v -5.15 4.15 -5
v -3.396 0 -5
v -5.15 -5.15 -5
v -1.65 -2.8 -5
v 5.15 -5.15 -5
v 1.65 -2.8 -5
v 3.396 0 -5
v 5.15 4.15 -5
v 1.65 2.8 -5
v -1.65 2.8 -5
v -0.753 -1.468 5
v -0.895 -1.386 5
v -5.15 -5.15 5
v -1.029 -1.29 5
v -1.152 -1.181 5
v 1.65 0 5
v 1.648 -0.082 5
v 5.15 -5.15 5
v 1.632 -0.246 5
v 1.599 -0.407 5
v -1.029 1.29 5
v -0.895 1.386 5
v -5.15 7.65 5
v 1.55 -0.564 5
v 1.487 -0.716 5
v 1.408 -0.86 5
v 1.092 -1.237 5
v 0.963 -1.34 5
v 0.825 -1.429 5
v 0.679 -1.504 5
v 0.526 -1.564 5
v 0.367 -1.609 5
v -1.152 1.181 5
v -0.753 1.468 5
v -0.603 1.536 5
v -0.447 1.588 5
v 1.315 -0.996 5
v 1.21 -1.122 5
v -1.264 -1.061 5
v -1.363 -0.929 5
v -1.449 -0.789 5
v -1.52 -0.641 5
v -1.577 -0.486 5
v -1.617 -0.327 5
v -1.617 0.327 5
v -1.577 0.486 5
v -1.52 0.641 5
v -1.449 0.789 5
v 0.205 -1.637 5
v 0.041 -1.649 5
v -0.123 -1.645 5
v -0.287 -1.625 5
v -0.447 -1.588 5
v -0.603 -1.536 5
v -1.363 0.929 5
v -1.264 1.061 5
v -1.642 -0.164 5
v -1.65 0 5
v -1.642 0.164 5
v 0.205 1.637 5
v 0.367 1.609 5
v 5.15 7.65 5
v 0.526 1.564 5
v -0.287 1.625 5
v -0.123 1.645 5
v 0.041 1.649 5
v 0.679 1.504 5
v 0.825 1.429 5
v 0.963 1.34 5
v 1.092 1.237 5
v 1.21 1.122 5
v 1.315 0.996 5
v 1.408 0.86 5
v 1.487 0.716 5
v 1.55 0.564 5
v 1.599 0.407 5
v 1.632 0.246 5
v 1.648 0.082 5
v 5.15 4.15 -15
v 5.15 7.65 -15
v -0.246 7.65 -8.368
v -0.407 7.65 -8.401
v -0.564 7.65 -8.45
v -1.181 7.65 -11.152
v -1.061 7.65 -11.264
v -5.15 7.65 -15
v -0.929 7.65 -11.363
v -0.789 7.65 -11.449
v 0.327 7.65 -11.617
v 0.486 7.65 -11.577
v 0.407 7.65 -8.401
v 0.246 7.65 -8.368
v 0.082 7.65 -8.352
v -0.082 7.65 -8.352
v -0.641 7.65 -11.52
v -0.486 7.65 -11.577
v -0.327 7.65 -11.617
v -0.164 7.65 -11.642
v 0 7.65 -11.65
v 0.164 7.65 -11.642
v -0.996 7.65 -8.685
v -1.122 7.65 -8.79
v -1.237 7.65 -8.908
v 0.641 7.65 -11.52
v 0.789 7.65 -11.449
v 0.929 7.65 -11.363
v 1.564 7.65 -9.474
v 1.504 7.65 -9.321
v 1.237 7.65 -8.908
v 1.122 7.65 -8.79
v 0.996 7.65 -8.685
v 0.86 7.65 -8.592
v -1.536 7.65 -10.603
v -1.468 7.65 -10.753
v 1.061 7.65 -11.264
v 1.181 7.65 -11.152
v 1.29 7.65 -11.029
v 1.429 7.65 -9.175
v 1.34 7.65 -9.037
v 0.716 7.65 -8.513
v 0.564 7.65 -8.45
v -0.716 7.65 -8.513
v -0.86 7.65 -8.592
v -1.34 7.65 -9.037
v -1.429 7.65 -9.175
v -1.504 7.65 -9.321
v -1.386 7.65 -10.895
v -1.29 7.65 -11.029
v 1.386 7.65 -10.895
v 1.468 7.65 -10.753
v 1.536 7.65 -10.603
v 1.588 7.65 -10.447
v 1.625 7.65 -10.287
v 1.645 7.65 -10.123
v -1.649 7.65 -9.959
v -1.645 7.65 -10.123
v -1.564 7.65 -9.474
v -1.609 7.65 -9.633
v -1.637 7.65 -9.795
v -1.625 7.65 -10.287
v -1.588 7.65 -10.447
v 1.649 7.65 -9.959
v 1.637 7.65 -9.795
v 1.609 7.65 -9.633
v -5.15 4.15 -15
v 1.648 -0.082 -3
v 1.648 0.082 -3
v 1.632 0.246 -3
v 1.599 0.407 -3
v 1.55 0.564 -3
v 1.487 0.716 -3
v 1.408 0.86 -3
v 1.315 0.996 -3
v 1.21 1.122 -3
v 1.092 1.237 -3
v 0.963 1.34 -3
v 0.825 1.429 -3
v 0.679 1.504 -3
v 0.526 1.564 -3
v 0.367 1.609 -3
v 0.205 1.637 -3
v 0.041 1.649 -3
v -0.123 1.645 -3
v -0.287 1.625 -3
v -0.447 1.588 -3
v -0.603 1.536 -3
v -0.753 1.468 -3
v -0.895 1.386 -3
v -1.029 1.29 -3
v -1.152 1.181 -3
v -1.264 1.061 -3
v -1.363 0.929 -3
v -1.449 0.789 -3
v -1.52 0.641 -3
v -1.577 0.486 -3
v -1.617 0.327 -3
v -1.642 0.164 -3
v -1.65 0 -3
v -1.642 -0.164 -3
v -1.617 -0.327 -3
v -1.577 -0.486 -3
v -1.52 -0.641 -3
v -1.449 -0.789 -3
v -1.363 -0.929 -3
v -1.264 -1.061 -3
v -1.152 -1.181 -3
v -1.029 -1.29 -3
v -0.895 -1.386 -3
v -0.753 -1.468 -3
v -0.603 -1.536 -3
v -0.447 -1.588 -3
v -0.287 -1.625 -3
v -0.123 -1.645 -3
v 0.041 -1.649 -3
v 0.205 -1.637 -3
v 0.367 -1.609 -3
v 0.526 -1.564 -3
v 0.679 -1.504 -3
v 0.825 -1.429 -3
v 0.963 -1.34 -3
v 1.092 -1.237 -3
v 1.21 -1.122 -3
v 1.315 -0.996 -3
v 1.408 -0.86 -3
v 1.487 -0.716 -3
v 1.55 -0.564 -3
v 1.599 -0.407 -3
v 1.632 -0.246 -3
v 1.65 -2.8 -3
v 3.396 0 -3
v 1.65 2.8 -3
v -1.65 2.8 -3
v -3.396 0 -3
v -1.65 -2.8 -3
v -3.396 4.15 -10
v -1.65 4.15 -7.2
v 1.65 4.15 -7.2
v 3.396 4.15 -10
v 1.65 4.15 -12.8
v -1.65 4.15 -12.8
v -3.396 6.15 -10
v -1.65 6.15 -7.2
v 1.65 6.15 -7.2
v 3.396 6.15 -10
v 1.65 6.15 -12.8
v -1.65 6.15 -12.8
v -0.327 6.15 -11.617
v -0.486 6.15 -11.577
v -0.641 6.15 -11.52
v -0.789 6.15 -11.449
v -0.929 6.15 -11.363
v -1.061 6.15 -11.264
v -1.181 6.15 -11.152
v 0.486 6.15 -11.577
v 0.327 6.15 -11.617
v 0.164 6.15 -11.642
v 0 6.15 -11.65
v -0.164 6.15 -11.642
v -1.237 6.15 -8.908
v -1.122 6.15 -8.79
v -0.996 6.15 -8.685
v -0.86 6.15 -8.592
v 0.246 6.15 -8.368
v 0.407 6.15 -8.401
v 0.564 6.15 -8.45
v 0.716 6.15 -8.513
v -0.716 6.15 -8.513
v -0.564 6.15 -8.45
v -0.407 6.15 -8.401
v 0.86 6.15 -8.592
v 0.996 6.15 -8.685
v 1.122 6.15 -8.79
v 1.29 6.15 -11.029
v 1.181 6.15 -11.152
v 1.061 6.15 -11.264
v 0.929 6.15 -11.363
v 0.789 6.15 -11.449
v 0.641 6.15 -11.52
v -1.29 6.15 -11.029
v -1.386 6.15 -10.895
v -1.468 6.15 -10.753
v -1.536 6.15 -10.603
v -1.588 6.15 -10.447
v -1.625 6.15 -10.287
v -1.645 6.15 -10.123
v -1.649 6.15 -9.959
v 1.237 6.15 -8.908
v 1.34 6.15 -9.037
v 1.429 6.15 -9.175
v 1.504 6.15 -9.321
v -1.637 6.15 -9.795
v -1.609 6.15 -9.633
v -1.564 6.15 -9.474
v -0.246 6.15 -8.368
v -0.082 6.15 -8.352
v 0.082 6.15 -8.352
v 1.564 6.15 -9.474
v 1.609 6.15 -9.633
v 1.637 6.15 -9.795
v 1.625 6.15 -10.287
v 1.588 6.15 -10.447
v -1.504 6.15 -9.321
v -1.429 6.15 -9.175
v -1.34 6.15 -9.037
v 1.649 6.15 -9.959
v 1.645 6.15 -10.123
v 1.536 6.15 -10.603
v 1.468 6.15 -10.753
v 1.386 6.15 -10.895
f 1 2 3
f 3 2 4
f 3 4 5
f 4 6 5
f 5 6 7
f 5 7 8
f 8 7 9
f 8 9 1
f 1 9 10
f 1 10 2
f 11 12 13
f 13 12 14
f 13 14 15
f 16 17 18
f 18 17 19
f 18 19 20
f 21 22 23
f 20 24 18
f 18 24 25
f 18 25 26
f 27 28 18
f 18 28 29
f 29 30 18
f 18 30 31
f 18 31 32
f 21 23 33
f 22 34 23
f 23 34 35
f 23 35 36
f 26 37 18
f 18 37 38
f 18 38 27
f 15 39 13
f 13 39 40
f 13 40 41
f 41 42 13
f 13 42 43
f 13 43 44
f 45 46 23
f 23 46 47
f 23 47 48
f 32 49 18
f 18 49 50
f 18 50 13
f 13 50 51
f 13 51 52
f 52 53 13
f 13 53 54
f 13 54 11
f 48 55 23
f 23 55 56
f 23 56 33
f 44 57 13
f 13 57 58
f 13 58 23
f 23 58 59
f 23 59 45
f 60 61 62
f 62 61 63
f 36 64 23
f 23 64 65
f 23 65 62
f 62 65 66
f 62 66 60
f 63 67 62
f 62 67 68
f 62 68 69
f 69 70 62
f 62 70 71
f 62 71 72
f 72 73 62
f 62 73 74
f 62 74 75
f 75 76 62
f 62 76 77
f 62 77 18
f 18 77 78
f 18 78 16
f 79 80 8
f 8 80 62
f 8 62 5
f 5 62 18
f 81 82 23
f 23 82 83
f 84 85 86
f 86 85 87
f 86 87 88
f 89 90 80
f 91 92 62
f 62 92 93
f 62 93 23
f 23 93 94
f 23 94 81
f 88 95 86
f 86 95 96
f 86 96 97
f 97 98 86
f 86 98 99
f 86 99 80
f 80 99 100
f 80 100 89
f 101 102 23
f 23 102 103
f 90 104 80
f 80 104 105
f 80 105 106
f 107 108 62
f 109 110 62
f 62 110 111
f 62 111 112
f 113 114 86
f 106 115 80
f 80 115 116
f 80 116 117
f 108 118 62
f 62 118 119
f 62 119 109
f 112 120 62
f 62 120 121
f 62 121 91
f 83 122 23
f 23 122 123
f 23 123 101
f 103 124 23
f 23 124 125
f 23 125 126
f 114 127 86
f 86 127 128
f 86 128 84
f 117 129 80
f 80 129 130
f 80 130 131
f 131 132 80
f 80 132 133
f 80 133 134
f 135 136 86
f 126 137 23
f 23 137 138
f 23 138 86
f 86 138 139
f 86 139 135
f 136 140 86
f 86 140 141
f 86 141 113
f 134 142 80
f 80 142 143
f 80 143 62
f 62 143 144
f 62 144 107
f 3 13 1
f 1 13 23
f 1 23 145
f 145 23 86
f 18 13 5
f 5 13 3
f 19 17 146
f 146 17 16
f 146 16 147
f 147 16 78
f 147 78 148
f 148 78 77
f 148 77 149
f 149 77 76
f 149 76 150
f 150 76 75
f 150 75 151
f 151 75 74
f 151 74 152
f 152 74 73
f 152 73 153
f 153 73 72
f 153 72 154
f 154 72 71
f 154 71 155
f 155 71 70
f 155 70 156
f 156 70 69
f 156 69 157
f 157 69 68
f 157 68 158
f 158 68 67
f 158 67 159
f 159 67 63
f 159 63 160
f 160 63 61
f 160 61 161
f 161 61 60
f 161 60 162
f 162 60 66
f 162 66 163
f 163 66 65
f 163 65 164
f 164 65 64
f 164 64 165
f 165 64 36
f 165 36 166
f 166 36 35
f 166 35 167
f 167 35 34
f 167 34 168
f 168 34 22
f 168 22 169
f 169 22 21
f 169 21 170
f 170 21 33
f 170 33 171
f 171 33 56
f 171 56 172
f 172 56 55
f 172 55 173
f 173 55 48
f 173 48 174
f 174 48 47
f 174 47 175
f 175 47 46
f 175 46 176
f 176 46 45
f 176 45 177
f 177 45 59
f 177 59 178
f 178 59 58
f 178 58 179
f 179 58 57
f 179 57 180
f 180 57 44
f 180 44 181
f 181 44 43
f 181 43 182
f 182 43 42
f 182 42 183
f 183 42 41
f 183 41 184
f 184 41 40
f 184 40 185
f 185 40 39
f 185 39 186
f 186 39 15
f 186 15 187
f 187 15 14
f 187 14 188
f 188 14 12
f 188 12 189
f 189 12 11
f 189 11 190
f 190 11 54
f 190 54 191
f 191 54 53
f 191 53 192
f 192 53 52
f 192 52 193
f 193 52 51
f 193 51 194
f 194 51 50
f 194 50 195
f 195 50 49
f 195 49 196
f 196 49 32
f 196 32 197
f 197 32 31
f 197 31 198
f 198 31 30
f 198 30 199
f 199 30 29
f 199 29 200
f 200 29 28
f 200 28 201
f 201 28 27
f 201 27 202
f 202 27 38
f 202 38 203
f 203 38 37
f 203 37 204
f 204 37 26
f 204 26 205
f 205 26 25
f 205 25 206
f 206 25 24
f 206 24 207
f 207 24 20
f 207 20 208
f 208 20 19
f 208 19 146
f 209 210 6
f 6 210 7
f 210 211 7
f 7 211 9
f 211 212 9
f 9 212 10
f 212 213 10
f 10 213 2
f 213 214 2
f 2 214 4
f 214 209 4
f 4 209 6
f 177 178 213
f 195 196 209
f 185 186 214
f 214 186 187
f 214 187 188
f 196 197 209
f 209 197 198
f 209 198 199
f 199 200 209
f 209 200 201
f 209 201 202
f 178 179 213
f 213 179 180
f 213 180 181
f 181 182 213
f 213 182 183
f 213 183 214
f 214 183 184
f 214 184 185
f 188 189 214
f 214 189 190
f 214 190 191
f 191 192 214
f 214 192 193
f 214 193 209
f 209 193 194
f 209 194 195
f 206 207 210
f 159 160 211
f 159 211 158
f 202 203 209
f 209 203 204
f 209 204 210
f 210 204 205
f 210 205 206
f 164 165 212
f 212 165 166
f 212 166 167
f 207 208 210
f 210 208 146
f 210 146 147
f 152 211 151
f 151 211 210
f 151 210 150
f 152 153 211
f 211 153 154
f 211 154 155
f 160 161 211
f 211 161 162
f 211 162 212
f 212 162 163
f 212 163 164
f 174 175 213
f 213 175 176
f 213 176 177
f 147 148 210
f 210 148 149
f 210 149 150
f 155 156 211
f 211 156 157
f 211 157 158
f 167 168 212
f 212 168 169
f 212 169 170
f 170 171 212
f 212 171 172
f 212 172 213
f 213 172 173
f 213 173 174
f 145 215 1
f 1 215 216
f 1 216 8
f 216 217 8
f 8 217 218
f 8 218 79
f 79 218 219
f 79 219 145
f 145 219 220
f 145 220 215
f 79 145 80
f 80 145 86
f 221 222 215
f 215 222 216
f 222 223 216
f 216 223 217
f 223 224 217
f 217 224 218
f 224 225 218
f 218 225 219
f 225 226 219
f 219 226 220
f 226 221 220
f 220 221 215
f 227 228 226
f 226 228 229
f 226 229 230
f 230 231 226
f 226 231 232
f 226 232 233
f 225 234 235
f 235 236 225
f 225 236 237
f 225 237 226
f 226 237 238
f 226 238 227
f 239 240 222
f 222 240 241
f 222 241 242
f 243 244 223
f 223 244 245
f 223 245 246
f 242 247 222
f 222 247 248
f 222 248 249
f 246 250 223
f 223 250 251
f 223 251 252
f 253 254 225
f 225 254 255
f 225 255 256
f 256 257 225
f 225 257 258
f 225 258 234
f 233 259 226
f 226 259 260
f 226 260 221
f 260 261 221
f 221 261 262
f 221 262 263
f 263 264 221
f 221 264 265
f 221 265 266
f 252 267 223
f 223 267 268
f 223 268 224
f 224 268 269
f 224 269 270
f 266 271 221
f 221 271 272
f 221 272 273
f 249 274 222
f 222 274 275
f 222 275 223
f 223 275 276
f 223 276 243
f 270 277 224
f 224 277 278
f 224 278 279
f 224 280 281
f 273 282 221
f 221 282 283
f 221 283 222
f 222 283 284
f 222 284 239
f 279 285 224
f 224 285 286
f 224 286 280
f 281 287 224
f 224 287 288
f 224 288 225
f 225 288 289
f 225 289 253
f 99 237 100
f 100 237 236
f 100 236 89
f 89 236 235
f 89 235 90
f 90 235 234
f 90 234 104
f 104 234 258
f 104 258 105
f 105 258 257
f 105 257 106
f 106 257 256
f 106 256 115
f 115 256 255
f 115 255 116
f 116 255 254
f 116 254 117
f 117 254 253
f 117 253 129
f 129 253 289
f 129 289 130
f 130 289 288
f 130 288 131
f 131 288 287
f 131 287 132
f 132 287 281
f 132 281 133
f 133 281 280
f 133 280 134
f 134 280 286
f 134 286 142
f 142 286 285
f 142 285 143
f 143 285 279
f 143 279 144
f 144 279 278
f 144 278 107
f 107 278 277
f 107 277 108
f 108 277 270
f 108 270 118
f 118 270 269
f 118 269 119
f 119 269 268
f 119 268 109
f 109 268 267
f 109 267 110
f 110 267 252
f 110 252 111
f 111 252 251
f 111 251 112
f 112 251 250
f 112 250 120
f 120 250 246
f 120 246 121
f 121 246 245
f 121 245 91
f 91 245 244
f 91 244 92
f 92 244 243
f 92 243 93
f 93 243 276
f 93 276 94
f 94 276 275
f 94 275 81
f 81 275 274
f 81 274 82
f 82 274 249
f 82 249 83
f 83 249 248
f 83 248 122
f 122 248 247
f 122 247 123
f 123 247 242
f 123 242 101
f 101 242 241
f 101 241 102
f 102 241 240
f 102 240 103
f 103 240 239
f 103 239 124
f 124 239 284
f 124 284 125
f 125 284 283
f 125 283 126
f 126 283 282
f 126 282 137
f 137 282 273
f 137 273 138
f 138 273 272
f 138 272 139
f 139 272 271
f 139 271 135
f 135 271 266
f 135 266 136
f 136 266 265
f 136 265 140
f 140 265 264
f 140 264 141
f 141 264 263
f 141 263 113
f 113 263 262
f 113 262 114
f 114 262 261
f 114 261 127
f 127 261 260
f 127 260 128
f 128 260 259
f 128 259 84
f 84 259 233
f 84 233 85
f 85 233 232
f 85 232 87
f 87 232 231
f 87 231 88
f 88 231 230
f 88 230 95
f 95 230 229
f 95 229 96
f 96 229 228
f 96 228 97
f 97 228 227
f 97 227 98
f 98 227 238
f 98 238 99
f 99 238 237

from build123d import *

# Parameters (mm, degrees)
SKETCH1_W           = 10.3
SKETCH1_H           = 12.8
SKETCH1_R           = 1.65
BOSS_EXTRUDE2_DEPTH = 5
SKETCH2_R           = 1.65
CUT_EXTRUDE1_DEPTH  = 2
SKETCH3_W           = 10.3
SKETCH3_H           = 3.5
BOSS_EXTRUDE3_DEPTH = 10
CUT_EXTRUDE2_DEPTH  = 2
SKETCH5_R           = 1.65
CUT_EXTRUDE3_DEPTH  = 1.5


with BuildPart() as part:
    # Sketch1 → Boss-Extrude2 (new, symmetric)
    with BuildSketch(Plane.XY):
        with Locations((0, 1.25)):
            Rectangle(SKETCH1_W, SKETCH1_H)
        Circle(SKETCH1_R, mode=Mode.SUBTRACT)
    extrude(amount=BOSS_EXTRUDE2_DEPTH, both=True)

    # Sketch2 → Cut-Extrude1 (cut)
    with BuildSketch(Plane(origin=(0, 0, -5), x_dir=(-1, 0, 0), z_dir=(0, 0, -1))):
        Polygon((-1.65, -2.8), (1.65, -2.8), (3.39642492, 0), (1.65, 2.8), (-1.65, 2.8), (-3.39642492, 0), align=None)
        Circle(SKETCH2_R, mode=Mode.SUBTRACT)
    extrude(amount=-CUT_EXTRUDE1_DEPTH, mode=Mode.SUBTRACT)

    # Sketch3 → Boss-Extrude3 (add)
    with BuildSketch(Plane(origin=(0, 0, -5), x_dir=(-1, 0, 0), z_dir=(0, 0, -1))):
        with Locations((0, 5.9)):
            Rectangle(SKETCH3_W, SKETCH3_H)
    extrude(amount=BOSS_EXTRUDE3_DEPTH)

    # Sketch4 → Cut-Extrude2 (cut)
    with BuildSketch(Plane.XZ.offset(-4.15)):
        with BuildLine():
            Line((-1.65, -10), (-3.39642492, -10))
            Line((-3.39642492, -10), (-1.65, -12.8))
            Line((-1.65, -12.8), (1.65, -12.8))
            Line((1.65, -12.8), (3.39642492, -10))
            Line((3.39642492, -10), (1.65, -10))
            ThreePointArc((1.65, -10), (0, -11.65), (-1.65, -10))
        make_face()
        with BuildLine():
            Line((-1.65, -7.2), (-3.39642492, -10))
            Line((-3.39642492, -10), (-1.65, -10))
            ThreePointArc((-1.65, -10), (0, -8.35), (1.65, -10))
            Line((1.65, -10), (3.39642492, -10))
            Line((3.39642492, -10), (1.65, -7.2))
            Line((1.65, -7.2), (-1.65, -7.2))
        make_face()
        with BuildLine():
            ThreePointArc((1.65, -10), (0, -8.35), (-1.65, -10))
            Line((-1.65, -10), (1.65, -10))
        make_face()
        with BuildLine():
            Line((1.65, -10), (-1.65, -10))
            ThreePointArc((-1.65, -10), (0, -11.65), (1.65, -10))
        make_face()
    extrude(amount=-CUT_EXTRUDE2_DEPTH, mode=Mode.SUBTRACT)

    # Sketch5 → Cut-Extrude3 (cut)
    with BuildSketch(Plane.XZ.offset(-6.15)):
        with Locations(Location((0, -10, 0), (0, 0, 270))):
            Circle(SKETCH5_R)
    extrude(amount=-CUT_EXTRUDE3_DEPTH, mode=Mode.SUBTRACT)


solid = part.part
